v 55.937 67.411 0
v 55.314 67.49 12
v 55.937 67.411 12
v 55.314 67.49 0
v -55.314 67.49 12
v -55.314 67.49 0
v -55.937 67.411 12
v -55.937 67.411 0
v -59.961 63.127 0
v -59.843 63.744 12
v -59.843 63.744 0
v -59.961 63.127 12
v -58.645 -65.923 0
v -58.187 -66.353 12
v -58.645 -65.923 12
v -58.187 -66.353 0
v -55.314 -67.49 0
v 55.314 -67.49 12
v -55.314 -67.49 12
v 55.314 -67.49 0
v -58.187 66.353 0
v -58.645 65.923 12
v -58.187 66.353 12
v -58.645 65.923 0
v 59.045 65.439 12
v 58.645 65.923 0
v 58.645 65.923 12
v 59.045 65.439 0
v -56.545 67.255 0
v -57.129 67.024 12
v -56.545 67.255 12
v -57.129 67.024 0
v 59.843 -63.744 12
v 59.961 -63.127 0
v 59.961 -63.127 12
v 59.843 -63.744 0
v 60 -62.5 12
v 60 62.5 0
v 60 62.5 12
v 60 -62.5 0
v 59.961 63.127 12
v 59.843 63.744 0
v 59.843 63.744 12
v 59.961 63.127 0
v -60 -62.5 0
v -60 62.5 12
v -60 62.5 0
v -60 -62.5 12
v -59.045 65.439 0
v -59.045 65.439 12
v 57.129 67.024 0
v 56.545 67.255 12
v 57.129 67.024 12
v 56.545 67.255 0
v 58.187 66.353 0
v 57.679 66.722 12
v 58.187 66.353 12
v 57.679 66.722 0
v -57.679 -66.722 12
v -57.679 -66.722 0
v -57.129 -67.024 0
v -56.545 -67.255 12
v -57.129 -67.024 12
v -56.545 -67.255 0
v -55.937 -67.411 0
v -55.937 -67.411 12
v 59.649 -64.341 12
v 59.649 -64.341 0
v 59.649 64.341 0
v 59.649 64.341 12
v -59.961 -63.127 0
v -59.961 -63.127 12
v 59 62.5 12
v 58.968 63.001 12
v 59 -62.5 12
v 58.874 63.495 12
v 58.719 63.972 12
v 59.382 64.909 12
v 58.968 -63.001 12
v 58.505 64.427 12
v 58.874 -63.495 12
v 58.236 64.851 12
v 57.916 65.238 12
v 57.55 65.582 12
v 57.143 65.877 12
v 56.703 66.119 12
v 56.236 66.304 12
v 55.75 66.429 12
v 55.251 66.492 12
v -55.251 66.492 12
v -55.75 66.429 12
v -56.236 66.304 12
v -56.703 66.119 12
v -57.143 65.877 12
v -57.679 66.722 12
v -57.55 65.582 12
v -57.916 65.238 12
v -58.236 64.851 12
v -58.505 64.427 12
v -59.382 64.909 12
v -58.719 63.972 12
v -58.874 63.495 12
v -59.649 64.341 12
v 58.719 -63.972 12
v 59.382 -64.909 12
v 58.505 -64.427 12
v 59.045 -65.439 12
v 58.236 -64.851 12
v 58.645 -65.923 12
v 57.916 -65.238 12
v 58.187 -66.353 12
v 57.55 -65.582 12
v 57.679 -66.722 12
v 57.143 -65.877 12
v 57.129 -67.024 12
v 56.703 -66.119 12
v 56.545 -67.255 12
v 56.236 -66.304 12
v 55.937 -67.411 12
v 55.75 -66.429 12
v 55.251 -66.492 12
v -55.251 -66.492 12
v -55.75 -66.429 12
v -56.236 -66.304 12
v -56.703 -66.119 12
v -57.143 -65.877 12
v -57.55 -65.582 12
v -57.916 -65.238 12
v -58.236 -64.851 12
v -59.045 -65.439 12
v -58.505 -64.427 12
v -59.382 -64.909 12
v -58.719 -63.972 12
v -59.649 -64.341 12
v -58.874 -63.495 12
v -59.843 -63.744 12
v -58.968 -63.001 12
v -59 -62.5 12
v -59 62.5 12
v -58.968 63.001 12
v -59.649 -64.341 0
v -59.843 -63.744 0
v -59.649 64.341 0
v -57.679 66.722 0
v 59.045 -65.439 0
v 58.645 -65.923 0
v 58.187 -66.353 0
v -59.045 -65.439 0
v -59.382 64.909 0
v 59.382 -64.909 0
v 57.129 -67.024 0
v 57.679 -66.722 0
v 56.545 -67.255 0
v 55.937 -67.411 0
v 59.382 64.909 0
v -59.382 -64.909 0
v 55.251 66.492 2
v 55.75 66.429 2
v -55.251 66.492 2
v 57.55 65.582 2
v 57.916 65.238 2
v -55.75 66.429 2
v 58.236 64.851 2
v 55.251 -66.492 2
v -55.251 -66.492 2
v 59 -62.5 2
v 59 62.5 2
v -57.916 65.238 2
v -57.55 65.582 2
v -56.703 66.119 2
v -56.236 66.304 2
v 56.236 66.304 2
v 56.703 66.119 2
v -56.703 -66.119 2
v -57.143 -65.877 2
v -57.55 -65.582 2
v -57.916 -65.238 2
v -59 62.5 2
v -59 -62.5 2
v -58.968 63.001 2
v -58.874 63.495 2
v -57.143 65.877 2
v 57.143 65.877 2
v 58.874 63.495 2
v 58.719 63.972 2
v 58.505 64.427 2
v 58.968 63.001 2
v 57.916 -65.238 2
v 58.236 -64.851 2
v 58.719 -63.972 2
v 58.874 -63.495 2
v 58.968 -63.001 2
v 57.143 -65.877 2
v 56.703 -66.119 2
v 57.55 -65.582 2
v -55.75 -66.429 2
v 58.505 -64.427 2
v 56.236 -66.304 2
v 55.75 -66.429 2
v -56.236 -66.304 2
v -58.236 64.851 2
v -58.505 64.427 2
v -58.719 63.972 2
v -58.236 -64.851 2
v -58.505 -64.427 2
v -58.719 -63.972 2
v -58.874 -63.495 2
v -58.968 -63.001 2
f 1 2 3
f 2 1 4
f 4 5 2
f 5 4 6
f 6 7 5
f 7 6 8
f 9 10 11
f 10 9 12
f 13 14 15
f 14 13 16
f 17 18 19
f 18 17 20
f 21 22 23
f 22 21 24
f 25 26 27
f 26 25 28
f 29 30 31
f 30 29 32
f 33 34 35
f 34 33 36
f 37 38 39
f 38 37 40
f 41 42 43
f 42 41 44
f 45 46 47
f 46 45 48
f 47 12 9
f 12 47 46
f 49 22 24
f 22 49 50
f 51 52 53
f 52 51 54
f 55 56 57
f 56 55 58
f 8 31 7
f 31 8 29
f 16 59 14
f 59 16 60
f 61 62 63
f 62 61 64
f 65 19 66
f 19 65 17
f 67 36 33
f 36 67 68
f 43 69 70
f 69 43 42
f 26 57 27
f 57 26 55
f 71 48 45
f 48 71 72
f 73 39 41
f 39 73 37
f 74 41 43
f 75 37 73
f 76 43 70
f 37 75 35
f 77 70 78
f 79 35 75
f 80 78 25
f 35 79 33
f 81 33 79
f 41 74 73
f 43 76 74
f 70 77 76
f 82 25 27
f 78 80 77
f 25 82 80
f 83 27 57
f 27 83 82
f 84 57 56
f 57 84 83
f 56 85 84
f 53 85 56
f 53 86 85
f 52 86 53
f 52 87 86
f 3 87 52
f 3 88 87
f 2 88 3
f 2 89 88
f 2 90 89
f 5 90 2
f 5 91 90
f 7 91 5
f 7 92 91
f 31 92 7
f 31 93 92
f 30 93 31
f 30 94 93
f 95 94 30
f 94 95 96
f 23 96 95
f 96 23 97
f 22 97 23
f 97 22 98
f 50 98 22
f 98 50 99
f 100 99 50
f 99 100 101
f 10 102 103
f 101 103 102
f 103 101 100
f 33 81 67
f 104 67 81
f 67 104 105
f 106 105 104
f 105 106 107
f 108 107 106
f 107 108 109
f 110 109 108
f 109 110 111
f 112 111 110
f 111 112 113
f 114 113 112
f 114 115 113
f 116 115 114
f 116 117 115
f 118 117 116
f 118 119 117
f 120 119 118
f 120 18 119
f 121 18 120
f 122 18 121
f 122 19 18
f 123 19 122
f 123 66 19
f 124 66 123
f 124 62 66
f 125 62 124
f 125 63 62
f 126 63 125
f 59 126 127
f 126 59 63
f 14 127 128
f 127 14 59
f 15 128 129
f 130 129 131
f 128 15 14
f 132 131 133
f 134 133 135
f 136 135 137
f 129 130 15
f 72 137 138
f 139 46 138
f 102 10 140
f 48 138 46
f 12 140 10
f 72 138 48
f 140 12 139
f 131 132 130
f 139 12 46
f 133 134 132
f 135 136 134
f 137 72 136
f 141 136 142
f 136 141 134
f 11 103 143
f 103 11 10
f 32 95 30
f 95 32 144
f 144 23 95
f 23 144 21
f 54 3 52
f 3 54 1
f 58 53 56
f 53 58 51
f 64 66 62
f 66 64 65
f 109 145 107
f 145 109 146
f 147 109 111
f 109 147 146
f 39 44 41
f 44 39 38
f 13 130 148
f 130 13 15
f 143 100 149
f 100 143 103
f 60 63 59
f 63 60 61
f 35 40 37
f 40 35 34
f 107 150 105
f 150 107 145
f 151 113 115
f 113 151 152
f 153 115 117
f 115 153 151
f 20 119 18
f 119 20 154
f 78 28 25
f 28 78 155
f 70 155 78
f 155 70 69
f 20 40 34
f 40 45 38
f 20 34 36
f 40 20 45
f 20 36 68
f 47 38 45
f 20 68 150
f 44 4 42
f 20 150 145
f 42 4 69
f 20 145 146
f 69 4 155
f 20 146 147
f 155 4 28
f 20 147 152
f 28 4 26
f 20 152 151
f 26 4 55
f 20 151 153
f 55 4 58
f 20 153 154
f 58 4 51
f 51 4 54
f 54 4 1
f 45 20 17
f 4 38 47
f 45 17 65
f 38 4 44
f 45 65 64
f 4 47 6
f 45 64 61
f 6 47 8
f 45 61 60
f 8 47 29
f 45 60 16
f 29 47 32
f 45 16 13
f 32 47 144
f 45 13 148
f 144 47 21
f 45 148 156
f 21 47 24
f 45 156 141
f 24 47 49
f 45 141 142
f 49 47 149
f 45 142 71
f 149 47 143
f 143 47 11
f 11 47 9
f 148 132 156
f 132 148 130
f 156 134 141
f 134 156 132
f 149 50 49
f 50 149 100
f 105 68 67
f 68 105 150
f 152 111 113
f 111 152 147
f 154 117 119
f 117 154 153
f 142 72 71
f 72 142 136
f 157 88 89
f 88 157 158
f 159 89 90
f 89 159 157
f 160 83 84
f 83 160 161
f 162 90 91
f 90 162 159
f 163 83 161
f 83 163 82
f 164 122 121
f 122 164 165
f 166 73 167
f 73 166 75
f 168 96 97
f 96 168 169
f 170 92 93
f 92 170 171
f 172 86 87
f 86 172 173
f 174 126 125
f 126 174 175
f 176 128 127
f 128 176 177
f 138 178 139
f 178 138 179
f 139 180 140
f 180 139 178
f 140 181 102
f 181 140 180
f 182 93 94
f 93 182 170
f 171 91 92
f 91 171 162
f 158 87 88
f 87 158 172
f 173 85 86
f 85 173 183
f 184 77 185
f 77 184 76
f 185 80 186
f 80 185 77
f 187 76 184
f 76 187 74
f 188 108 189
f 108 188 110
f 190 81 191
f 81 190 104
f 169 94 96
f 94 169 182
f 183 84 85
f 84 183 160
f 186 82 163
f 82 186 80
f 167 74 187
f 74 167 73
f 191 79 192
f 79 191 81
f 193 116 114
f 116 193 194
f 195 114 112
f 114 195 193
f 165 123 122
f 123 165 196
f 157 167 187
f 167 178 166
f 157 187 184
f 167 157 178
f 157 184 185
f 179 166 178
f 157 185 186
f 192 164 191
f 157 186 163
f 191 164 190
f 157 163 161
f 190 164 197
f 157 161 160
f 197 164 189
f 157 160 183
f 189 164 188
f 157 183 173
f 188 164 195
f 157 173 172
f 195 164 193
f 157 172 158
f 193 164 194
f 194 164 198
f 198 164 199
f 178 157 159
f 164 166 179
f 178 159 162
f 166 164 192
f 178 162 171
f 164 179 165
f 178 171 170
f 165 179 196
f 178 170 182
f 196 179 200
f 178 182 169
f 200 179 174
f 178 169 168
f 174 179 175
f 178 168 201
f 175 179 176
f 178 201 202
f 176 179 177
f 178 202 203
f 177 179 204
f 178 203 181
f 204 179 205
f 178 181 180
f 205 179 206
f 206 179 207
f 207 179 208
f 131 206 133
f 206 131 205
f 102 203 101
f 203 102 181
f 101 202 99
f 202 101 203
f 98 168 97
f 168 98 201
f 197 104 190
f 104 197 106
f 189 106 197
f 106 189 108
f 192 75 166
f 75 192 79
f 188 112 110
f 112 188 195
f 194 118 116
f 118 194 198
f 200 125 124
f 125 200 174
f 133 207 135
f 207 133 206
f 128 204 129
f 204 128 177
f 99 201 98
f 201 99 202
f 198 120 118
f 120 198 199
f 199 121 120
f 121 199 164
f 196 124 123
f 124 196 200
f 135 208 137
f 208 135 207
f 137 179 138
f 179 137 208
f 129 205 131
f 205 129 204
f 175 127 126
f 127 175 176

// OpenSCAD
$fn = 50;


difference() {
	union() {
		hull() {
			translate(v = [-55.0000000000, 62.5000000000, 0]) {
				cylinder(h = 12, r = 5);
			}
			translate(v = [55.0000000000, 62.5000000000, 0]) {
				cylinder(h = 12, r = 5);
			}
			translate(v = [-55.0000000000, -62.5000000000, 0]) {
				cylinder(h = 12, r = 5);
			}
			translate(v = [55.0000000000, -62.5000000000, 0]) {
				cylinder(h = 12, r = 5);
			}
		}
	}
	union() {
		translate(v = [0, 0, 2]) {
			hull() {
				translate(v = [-55.0000000000, 62.5000000000, 0]) {
					cylinder(h = 10, r = 4);
				}
				translate(v = [55.0000000000, 62.5000000000, 0]) {
					cylinder(h = 10, r = 4);
				}
				translate(v = [-55.0000000000, -62.5000000000, 0]) {
					cylinder(h = 10, r = 4);
				}
				translate(v = [55.0000000000, -62.5000000000, 0]) {
					cylinder(h = 10, r = 4);
				}
			}
		}
	}
}
